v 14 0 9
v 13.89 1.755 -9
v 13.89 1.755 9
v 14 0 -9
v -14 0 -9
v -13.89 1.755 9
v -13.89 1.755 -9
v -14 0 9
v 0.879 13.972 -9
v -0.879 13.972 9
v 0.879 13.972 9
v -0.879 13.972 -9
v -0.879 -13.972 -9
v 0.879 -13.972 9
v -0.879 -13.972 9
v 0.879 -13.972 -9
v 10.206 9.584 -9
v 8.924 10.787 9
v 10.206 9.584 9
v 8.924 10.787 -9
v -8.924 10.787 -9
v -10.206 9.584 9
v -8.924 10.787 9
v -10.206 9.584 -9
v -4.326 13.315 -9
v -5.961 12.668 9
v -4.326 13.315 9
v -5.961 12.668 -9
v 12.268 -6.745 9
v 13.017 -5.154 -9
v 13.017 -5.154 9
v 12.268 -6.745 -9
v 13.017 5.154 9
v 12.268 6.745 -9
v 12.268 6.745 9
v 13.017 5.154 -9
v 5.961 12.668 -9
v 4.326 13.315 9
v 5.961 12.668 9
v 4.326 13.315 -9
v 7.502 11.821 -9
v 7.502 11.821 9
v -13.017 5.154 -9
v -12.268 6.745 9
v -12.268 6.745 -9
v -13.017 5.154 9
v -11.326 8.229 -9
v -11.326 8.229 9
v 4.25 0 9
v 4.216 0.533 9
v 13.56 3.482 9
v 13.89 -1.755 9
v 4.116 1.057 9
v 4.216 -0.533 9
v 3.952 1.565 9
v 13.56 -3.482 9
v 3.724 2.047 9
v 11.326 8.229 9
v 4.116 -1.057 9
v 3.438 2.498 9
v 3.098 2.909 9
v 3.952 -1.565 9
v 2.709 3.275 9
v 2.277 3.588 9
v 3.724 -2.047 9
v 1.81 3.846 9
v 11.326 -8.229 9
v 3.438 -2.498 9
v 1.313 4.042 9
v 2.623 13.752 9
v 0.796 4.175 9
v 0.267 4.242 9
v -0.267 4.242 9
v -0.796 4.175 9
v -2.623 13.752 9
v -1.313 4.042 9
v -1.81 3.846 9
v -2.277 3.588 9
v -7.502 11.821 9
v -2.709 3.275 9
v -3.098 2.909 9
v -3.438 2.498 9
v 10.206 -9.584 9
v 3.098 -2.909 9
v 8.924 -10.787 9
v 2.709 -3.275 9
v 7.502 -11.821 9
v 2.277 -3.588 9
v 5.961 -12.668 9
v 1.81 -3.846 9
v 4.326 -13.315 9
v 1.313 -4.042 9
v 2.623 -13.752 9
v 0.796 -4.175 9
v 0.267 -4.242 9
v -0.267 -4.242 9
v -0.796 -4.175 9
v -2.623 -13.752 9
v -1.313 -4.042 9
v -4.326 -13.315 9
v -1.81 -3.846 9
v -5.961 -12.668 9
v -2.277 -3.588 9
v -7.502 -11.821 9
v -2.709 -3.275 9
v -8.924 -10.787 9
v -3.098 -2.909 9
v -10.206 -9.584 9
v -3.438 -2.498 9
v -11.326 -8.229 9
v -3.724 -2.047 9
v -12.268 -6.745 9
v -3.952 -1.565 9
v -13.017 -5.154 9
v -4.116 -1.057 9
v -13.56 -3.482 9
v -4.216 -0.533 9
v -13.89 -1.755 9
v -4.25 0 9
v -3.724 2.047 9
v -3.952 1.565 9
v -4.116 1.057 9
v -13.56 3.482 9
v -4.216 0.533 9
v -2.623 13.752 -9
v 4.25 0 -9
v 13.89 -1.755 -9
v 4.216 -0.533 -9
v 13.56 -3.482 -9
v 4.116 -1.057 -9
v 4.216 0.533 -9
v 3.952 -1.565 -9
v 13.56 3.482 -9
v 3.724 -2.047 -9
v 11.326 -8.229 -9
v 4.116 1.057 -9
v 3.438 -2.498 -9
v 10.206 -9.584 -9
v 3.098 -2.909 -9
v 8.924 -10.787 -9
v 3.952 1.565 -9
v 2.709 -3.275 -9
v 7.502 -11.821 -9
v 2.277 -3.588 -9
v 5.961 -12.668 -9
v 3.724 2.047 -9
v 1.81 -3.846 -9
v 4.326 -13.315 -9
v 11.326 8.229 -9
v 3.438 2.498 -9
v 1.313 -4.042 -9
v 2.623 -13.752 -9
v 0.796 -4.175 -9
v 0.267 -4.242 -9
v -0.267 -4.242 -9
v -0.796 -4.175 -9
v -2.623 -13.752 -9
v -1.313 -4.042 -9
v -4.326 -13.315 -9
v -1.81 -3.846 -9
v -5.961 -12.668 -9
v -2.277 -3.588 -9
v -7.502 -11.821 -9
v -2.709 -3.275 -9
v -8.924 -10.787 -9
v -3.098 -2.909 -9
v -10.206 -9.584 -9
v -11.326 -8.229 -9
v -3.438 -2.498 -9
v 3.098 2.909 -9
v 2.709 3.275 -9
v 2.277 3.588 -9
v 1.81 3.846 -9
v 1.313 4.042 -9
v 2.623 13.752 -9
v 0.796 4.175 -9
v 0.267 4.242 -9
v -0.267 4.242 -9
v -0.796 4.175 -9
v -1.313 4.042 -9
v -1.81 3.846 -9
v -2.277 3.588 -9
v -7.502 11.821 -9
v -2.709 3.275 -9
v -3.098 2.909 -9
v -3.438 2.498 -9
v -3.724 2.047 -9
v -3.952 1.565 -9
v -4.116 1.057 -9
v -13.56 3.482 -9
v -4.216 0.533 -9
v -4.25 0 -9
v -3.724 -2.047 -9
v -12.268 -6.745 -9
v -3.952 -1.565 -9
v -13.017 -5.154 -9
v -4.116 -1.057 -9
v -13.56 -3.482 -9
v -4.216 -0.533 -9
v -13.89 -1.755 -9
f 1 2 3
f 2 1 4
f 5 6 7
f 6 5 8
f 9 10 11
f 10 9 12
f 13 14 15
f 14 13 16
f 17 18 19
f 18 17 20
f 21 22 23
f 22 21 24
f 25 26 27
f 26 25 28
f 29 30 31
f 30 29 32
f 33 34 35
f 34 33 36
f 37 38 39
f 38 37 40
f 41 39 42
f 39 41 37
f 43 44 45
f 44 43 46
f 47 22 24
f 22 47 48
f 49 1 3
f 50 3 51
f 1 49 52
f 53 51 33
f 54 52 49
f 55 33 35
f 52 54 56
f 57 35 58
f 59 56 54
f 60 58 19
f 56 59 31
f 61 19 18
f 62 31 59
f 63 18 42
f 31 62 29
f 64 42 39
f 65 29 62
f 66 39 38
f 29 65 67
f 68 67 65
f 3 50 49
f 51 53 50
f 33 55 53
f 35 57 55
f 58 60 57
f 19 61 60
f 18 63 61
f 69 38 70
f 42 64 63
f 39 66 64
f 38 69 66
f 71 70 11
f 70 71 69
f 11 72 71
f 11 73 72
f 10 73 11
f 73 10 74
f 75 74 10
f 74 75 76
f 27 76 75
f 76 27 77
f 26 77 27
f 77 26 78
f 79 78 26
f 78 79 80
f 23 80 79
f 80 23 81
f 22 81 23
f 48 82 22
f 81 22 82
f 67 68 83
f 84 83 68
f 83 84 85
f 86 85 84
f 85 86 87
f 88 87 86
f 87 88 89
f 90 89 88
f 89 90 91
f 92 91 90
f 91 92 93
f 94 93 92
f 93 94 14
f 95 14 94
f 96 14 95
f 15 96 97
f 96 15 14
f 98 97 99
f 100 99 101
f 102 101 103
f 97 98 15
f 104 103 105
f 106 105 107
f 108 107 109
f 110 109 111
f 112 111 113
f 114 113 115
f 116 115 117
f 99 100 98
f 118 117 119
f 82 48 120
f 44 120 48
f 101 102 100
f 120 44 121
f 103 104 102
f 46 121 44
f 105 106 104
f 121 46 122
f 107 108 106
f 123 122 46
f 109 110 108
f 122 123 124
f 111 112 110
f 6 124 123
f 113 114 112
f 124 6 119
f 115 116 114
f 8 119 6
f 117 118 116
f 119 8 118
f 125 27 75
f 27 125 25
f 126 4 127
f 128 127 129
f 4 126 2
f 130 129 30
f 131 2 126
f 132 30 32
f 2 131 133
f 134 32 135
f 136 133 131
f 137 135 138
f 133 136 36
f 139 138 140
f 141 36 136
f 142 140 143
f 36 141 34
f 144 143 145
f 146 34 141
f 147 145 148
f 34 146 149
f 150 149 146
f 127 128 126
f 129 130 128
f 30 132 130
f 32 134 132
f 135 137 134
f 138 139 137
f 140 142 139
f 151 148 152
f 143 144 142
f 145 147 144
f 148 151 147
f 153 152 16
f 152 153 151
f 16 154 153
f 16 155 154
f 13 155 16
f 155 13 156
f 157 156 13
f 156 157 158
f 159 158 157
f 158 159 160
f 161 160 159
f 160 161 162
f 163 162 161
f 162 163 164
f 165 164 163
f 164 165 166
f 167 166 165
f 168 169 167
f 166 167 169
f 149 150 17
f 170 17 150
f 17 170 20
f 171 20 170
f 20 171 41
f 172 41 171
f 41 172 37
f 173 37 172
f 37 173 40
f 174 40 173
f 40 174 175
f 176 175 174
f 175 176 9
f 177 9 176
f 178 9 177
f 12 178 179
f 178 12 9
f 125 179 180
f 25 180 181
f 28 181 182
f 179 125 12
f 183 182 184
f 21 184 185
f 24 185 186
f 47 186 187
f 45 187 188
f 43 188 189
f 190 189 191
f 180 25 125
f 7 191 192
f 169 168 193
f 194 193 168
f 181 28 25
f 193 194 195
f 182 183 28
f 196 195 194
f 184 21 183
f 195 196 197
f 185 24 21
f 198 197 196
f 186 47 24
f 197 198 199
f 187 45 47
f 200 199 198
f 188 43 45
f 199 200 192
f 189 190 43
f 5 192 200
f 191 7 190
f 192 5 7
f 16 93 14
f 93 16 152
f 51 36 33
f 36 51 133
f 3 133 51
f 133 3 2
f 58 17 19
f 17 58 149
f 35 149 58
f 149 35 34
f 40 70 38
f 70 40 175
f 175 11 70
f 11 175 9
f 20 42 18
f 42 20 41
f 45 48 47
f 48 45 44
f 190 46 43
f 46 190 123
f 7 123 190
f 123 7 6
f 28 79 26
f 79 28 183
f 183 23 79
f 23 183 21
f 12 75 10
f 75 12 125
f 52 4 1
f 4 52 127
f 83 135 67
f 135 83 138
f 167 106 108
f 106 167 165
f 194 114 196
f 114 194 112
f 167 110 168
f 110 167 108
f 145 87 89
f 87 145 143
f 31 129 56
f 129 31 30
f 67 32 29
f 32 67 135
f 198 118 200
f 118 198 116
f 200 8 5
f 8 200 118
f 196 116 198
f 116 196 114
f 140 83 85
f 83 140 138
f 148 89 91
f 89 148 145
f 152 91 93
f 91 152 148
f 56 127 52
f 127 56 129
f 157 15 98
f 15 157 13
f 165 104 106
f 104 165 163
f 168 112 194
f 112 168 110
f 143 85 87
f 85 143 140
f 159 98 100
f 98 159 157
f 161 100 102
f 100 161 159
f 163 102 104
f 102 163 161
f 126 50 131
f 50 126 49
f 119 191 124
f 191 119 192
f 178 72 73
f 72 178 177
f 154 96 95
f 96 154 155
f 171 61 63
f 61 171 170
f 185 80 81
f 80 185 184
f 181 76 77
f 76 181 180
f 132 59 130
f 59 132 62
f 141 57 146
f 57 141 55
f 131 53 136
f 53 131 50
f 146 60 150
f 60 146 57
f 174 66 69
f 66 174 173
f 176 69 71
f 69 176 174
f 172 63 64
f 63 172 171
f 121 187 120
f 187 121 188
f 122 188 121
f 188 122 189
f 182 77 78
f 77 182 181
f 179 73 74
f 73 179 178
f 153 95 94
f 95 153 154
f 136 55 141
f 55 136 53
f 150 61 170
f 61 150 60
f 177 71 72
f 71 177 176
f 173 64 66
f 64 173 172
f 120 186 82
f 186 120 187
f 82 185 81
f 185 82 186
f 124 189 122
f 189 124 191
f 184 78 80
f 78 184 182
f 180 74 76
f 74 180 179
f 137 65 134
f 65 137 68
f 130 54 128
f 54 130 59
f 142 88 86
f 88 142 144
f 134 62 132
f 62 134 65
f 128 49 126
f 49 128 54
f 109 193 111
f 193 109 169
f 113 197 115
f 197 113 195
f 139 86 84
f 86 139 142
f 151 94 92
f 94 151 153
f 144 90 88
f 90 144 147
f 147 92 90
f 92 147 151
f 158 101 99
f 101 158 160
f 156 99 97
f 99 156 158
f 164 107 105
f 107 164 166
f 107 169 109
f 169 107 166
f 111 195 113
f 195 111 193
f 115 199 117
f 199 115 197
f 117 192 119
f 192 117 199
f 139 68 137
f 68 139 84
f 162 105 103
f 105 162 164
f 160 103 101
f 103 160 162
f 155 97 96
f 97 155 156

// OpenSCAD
$fn = 50;


difference() {
	union() {
		translate(v = [0, 0, -9.0000000000]) {
			cylinder(h = 18, r = 14.0000000000);
		}
	}
	union() {
		translate(v = [0, 0, -100.0000000000]) {
			cylinder(h = 200, r = 4.2500000000);
		}
	}
}
